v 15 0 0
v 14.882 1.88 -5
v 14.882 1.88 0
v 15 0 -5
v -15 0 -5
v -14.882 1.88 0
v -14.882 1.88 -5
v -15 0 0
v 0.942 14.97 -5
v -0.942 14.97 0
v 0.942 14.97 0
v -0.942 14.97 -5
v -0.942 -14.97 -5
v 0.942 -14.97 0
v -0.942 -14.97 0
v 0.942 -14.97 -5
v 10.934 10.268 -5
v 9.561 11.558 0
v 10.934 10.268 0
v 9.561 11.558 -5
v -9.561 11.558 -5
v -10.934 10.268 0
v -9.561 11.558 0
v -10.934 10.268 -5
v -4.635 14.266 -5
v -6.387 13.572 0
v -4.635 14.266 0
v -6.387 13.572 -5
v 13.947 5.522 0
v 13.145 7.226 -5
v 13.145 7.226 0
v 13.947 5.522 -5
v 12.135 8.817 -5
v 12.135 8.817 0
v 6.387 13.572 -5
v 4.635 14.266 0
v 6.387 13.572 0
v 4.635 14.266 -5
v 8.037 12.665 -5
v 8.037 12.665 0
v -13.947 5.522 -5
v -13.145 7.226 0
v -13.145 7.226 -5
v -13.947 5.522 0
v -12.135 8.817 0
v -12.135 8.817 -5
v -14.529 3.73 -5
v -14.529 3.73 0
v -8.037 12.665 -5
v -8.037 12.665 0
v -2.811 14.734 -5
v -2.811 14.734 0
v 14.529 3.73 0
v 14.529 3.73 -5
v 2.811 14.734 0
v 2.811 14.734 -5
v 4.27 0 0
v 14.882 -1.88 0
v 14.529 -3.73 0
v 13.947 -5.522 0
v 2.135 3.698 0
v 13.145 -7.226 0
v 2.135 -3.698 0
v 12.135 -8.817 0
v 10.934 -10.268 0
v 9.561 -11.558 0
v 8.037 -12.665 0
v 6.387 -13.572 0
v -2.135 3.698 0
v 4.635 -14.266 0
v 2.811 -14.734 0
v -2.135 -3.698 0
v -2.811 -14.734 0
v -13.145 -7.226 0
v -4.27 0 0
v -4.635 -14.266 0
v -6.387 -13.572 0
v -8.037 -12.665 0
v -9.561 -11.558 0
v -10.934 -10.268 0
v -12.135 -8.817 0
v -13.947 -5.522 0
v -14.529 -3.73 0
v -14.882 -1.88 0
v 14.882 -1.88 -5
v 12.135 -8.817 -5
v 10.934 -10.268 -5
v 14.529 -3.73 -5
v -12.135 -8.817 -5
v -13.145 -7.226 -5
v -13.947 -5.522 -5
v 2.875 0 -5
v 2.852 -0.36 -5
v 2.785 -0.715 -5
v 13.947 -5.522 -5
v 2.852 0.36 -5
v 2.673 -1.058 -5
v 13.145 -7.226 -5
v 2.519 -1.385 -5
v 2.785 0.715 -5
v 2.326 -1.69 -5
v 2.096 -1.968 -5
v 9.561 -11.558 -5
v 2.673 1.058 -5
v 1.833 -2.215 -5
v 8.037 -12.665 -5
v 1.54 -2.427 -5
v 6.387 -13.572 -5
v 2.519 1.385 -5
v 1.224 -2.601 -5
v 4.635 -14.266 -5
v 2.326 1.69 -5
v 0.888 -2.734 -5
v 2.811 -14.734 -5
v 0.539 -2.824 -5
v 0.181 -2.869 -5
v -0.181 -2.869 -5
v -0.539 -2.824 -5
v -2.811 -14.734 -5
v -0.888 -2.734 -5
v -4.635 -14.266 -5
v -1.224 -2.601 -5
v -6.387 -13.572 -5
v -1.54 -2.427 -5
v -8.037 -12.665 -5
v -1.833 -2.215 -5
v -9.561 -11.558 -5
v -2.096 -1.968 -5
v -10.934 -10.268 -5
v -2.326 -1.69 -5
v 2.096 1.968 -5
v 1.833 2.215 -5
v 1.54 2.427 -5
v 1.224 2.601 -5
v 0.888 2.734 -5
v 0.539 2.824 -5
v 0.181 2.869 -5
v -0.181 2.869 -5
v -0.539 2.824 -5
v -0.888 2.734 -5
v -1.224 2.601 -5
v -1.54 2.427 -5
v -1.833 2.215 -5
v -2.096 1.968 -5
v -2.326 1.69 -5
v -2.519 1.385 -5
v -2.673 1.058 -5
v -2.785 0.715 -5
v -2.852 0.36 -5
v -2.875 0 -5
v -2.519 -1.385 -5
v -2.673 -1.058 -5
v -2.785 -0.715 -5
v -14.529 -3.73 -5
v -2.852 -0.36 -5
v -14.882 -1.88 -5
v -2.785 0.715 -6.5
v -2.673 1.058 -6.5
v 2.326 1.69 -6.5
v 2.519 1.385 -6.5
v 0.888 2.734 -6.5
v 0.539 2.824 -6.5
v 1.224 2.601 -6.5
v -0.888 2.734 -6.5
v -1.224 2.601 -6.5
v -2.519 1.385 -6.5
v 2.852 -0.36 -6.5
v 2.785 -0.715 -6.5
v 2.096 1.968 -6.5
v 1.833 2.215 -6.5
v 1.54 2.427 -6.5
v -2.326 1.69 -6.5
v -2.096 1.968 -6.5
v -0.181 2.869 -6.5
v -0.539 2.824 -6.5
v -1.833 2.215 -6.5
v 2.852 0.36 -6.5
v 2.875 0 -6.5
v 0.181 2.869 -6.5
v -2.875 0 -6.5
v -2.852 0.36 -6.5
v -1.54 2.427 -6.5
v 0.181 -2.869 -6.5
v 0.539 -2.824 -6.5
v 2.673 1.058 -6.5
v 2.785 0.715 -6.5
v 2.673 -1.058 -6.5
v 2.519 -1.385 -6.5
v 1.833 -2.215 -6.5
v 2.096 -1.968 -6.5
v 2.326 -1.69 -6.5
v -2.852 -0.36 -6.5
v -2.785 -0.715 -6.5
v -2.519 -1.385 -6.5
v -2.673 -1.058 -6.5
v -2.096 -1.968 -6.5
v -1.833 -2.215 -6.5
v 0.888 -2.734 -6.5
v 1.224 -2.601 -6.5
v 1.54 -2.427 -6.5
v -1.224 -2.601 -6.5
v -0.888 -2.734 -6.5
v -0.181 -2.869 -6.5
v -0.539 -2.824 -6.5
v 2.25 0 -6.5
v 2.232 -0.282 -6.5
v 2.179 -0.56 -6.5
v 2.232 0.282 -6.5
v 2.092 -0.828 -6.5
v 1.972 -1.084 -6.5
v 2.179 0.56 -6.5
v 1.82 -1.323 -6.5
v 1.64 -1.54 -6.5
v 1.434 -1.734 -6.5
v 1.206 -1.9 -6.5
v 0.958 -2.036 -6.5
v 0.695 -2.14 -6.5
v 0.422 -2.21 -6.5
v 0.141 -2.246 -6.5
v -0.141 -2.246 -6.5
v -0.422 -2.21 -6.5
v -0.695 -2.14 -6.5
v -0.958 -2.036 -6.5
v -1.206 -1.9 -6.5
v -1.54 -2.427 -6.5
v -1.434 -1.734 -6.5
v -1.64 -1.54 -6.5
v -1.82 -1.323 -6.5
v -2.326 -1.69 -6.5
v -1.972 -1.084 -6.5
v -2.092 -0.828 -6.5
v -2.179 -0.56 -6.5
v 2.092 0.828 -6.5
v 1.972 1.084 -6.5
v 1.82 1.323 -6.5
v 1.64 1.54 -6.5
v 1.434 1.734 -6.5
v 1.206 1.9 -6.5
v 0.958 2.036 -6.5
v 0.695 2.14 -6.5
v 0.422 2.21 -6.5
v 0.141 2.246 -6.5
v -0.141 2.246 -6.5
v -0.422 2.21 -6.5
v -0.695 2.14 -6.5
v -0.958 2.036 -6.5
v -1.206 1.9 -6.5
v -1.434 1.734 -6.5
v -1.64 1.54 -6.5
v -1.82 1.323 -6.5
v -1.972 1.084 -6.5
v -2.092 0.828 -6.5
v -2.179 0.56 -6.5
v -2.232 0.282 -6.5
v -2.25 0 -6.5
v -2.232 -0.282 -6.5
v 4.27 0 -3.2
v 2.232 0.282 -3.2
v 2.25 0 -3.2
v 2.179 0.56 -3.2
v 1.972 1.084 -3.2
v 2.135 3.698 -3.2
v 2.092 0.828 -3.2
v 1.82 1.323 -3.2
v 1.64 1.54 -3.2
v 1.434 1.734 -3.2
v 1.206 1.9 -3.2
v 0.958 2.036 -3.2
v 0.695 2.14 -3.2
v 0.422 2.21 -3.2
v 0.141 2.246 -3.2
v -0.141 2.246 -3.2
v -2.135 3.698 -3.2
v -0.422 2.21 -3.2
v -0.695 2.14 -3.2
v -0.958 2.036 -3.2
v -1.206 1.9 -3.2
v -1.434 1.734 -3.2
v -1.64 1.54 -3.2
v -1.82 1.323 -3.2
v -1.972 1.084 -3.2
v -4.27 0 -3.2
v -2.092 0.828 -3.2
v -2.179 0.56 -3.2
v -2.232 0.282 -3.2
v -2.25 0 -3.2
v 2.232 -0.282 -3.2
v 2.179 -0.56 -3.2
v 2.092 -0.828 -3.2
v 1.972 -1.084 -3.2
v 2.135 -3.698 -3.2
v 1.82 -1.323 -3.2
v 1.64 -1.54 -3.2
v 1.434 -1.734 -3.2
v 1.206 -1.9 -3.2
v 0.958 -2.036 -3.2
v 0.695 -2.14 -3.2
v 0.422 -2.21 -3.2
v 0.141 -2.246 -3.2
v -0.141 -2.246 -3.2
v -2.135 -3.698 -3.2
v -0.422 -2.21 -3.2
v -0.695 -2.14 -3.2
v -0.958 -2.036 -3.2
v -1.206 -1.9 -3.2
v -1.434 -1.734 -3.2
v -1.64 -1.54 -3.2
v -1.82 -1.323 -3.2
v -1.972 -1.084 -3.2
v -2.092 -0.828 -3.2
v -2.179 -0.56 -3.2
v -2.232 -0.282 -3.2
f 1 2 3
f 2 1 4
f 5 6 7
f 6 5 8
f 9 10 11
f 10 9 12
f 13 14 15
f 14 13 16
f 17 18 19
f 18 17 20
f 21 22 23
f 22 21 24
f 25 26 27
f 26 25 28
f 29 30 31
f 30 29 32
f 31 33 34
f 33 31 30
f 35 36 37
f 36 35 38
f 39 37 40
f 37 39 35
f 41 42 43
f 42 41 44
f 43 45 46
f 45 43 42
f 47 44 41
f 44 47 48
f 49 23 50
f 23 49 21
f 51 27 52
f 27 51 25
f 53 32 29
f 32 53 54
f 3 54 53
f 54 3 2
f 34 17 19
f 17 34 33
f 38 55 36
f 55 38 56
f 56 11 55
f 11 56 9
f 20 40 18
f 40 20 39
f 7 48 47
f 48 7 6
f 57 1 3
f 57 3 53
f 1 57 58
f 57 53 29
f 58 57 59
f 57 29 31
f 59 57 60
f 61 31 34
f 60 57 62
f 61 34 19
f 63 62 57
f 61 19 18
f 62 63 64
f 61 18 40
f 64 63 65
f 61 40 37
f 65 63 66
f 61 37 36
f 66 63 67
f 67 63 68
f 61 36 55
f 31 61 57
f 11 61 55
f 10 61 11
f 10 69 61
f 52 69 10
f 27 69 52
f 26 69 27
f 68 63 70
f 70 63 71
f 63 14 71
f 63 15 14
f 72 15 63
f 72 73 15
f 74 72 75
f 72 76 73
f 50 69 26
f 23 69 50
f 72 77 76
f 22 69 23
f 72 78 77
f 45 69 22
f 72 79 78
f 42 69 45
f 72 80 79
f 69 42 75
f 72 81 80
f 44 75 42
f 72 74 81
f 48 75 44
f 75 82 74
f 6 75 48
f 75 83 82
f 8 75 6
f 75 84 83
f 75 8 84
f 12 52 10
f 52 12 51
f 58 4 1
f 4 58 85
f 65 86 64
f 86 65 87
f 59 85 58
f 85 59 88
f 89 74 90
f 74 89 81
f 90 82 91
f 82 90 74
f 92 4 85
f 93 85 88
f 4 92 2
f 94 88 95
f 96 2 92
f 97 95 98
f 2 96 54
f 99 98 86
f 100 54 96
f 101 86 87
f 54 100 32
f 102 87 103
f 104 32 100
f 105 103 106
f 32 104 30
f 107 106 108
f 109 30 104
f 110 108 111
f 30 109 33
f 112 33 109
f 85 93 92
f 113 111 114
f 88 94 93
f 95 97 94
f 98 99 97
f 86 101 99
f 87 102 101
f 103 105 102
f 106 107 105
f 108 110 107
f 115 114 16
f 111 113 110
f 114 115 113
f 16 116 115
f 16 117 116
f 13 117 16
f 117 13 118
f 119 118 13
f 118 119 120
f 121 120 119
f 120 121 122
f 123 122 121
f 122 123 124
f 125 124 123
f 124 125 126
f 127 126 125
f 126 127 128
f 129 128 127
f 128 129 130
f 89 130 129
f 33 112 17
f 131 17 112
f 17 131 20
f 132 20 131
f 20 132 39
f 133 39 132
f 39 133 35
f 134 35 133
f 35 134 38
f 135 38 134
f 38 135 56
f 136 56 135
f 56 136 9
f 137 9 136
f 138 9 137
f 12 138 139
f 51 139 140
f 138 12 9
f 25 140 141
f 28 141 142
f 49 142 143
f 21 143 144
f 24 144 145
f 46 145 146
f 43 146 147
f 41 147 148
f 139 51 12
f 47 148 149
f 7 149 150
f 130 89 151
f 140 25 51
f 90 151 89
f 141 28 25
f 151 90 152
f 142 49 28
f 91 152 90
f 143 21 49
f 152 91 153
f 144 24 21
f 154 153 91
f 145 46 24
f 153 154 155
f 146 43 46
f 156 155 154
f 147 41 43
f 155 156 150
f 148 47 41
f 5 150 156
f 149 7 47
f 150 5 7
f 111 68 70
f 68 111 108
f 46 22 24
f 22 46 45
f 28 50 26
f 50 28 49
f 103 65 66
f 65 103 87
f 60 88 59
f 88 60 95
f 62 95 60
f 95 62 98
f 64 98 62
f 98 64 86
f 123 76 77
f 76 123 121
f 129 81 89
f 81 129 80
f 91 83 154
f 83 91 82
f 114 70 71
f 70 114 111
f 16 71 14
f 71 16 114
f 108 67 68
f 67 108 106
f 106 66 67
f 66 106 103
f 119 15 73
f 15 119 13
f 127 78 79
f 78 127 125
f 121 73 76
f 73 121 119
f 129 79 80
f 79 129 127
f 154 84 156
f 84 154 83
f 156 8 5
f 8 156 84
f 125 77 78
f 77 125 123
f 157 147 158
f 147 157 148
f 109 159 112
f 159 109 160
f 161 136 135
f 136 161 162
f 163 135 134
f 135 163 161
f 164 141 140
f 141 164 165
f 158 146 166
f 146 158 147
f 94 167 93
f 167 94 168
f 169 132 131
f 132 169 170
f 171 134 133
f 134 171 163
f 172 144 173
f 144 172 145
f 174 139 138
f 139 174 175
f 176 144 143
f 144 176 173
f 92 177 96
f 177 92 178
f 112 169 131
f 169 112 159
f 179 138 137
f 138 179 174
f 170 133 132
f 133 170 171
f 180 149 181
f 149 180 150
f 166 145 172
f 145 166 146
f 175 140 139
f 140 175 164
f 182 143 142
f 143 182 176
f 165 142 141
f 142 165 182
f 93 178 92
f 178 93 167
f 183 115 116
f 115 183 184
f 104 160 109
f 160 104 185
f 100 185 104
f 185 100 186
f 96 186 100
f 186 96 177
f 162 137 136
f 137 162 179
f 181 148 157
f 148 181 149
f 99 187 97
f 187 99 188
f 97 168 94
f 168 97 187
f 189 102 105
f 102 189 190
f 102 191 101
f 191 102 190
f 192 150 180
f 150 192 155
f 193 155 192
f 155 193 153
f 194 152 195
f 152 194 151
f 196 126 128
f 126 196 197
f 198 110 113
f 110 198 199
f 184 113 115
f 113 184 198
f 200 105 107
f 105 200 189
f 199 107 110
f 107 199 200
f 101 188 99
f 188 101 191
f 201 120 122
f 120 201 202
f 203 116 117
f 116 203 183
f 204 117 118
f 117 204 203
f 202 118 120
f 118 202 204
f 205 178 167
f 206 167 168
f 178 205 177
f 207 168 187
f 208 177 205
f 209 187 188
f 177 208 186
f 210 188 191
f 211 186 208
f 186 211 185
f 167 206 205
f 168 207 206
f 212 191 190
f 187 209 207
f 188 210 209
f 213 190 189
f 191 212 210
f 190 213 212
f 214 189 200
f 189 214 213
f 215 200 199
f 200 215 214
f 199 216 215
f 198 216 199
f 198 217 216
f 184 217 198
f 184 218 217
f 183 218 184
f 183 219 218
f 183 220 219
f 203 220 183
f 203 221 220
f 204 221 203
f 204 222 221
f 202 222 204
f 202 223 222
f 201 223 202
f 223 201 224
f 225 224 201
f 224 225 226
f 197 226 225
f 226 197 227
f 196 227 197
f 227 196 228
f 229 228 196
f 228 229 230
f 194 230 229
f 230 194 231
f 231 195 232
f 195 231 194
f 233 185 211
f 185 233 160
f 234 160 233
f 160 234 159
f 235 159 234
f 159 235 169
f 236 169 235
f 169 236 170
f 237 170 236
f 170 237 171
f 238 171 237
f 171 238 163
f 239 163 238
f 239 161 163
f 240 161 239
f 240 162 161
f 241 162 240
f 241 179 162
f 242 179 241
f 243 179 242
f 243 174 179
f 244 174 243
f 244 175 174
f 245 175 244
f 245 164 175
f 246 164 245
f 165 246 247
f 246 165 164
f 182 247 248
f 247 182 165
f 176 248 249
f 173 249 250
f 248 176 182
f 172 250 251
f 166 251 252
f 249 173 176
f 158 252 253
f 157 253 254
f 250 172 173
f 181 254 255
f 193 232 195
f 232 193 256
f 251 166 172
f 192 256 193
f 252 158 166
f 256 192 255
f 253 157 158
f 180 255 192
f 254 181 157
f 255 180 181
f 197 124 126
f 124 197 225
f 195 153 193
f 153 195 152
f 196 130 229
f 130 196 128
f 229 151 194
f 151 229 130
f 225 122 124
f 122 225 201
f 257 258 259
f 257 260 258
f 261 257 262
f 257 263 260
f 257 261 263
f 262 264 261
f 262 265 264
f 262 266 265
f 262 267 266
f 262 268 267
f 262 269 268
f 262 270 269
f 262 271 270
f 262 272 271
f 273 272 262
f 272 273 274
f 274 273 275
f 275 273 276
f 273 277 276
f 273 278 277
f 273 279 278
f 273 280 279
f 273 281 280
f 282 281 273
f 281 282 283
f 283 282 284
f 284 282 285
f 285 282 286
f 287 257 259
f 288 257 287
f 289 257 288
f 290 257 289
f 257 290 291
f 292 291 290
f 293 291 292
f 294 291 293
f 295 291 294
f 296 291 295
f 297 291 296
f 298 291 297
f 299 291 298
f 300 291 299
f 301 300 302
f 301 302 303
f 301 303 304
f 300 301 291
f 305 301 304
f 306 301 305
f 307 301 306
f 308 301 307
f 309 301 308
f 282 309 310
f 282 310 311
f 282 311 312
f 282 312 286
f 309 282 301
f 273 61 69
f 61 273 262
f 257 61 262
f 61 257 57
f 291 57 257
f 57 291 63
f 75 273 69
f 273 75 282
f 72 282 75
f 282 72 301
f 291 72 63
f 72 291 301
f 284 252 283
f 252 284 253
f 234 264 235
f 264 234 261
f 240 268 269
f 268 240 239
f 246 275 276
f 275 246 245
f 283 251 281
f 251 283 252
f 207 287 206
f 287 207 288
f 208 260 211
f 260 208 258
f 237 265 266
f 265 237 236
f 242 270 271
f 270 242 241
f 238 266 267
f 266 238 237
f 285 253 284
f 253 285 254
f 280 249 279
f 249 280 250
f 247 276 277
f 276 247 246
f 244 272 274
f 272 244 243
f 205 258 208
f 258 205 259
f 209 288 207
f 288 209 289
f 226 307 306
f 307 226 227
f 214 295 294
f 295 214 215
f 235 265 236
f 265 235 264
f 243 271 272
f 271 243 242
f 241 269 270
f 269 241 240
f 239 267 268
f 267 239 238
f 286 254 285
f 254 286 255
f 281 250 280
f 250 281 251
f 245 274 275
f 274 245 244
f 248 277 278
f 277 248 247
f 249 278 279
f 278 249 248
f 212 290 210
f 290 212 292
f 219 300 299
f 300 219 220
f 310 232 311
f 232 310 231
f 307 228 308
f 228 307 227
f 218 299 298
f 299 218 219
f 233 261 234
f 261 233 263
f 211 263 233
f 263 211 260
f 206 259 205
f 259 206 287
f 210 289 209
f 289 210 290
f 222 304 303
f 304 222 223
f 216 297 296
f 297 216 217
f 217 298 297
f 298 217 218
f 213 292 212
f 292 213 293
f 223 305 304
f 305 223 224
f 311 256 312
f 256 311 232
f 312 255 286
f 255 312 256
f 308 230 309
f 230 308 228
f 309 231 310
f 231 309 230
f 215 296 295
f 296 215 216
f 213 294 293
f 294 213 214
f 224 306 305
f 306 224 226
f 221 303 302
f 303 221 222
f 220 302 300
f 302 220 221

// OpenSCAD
$fn = 50;


difference() {
	union() {
		translate(v = [0, 0, -5.0000000000]) {
			cylinder(h = 5.0000000000, r = 15.0000000000);
		}
		#translate(v = [0, 0, -6.5000000000]) {
			cylinder(h = 6.5000000000, r = 2.8750000000);
		}
	}
	union() {
		translate(v = [0, 0, 0]) {
			rotate(a = [0, 0, 0]) {
				difference() {
					union() {
						translate(v = [0, 0, -3.2000000000]) {
							linear_extrude(height = 3.2000000000) {
								polygon(points = [[4.2698000000, 0.0000000000], [2.1349000000, 3.6977552691], [-2.1349000000, 3.6977552691], [-4.2698000000, 0.0000000000], [-2.1349000000, -3.6977552691], [2.1349000000, -3.6977552691]]);
							}
						}
					}
					union();
				}
			}
		}
		#translate(v = [0, 0, -100.0000000000]) {
			cylinder(h = 200, r = 2.2500000000);
		}
	}
}
